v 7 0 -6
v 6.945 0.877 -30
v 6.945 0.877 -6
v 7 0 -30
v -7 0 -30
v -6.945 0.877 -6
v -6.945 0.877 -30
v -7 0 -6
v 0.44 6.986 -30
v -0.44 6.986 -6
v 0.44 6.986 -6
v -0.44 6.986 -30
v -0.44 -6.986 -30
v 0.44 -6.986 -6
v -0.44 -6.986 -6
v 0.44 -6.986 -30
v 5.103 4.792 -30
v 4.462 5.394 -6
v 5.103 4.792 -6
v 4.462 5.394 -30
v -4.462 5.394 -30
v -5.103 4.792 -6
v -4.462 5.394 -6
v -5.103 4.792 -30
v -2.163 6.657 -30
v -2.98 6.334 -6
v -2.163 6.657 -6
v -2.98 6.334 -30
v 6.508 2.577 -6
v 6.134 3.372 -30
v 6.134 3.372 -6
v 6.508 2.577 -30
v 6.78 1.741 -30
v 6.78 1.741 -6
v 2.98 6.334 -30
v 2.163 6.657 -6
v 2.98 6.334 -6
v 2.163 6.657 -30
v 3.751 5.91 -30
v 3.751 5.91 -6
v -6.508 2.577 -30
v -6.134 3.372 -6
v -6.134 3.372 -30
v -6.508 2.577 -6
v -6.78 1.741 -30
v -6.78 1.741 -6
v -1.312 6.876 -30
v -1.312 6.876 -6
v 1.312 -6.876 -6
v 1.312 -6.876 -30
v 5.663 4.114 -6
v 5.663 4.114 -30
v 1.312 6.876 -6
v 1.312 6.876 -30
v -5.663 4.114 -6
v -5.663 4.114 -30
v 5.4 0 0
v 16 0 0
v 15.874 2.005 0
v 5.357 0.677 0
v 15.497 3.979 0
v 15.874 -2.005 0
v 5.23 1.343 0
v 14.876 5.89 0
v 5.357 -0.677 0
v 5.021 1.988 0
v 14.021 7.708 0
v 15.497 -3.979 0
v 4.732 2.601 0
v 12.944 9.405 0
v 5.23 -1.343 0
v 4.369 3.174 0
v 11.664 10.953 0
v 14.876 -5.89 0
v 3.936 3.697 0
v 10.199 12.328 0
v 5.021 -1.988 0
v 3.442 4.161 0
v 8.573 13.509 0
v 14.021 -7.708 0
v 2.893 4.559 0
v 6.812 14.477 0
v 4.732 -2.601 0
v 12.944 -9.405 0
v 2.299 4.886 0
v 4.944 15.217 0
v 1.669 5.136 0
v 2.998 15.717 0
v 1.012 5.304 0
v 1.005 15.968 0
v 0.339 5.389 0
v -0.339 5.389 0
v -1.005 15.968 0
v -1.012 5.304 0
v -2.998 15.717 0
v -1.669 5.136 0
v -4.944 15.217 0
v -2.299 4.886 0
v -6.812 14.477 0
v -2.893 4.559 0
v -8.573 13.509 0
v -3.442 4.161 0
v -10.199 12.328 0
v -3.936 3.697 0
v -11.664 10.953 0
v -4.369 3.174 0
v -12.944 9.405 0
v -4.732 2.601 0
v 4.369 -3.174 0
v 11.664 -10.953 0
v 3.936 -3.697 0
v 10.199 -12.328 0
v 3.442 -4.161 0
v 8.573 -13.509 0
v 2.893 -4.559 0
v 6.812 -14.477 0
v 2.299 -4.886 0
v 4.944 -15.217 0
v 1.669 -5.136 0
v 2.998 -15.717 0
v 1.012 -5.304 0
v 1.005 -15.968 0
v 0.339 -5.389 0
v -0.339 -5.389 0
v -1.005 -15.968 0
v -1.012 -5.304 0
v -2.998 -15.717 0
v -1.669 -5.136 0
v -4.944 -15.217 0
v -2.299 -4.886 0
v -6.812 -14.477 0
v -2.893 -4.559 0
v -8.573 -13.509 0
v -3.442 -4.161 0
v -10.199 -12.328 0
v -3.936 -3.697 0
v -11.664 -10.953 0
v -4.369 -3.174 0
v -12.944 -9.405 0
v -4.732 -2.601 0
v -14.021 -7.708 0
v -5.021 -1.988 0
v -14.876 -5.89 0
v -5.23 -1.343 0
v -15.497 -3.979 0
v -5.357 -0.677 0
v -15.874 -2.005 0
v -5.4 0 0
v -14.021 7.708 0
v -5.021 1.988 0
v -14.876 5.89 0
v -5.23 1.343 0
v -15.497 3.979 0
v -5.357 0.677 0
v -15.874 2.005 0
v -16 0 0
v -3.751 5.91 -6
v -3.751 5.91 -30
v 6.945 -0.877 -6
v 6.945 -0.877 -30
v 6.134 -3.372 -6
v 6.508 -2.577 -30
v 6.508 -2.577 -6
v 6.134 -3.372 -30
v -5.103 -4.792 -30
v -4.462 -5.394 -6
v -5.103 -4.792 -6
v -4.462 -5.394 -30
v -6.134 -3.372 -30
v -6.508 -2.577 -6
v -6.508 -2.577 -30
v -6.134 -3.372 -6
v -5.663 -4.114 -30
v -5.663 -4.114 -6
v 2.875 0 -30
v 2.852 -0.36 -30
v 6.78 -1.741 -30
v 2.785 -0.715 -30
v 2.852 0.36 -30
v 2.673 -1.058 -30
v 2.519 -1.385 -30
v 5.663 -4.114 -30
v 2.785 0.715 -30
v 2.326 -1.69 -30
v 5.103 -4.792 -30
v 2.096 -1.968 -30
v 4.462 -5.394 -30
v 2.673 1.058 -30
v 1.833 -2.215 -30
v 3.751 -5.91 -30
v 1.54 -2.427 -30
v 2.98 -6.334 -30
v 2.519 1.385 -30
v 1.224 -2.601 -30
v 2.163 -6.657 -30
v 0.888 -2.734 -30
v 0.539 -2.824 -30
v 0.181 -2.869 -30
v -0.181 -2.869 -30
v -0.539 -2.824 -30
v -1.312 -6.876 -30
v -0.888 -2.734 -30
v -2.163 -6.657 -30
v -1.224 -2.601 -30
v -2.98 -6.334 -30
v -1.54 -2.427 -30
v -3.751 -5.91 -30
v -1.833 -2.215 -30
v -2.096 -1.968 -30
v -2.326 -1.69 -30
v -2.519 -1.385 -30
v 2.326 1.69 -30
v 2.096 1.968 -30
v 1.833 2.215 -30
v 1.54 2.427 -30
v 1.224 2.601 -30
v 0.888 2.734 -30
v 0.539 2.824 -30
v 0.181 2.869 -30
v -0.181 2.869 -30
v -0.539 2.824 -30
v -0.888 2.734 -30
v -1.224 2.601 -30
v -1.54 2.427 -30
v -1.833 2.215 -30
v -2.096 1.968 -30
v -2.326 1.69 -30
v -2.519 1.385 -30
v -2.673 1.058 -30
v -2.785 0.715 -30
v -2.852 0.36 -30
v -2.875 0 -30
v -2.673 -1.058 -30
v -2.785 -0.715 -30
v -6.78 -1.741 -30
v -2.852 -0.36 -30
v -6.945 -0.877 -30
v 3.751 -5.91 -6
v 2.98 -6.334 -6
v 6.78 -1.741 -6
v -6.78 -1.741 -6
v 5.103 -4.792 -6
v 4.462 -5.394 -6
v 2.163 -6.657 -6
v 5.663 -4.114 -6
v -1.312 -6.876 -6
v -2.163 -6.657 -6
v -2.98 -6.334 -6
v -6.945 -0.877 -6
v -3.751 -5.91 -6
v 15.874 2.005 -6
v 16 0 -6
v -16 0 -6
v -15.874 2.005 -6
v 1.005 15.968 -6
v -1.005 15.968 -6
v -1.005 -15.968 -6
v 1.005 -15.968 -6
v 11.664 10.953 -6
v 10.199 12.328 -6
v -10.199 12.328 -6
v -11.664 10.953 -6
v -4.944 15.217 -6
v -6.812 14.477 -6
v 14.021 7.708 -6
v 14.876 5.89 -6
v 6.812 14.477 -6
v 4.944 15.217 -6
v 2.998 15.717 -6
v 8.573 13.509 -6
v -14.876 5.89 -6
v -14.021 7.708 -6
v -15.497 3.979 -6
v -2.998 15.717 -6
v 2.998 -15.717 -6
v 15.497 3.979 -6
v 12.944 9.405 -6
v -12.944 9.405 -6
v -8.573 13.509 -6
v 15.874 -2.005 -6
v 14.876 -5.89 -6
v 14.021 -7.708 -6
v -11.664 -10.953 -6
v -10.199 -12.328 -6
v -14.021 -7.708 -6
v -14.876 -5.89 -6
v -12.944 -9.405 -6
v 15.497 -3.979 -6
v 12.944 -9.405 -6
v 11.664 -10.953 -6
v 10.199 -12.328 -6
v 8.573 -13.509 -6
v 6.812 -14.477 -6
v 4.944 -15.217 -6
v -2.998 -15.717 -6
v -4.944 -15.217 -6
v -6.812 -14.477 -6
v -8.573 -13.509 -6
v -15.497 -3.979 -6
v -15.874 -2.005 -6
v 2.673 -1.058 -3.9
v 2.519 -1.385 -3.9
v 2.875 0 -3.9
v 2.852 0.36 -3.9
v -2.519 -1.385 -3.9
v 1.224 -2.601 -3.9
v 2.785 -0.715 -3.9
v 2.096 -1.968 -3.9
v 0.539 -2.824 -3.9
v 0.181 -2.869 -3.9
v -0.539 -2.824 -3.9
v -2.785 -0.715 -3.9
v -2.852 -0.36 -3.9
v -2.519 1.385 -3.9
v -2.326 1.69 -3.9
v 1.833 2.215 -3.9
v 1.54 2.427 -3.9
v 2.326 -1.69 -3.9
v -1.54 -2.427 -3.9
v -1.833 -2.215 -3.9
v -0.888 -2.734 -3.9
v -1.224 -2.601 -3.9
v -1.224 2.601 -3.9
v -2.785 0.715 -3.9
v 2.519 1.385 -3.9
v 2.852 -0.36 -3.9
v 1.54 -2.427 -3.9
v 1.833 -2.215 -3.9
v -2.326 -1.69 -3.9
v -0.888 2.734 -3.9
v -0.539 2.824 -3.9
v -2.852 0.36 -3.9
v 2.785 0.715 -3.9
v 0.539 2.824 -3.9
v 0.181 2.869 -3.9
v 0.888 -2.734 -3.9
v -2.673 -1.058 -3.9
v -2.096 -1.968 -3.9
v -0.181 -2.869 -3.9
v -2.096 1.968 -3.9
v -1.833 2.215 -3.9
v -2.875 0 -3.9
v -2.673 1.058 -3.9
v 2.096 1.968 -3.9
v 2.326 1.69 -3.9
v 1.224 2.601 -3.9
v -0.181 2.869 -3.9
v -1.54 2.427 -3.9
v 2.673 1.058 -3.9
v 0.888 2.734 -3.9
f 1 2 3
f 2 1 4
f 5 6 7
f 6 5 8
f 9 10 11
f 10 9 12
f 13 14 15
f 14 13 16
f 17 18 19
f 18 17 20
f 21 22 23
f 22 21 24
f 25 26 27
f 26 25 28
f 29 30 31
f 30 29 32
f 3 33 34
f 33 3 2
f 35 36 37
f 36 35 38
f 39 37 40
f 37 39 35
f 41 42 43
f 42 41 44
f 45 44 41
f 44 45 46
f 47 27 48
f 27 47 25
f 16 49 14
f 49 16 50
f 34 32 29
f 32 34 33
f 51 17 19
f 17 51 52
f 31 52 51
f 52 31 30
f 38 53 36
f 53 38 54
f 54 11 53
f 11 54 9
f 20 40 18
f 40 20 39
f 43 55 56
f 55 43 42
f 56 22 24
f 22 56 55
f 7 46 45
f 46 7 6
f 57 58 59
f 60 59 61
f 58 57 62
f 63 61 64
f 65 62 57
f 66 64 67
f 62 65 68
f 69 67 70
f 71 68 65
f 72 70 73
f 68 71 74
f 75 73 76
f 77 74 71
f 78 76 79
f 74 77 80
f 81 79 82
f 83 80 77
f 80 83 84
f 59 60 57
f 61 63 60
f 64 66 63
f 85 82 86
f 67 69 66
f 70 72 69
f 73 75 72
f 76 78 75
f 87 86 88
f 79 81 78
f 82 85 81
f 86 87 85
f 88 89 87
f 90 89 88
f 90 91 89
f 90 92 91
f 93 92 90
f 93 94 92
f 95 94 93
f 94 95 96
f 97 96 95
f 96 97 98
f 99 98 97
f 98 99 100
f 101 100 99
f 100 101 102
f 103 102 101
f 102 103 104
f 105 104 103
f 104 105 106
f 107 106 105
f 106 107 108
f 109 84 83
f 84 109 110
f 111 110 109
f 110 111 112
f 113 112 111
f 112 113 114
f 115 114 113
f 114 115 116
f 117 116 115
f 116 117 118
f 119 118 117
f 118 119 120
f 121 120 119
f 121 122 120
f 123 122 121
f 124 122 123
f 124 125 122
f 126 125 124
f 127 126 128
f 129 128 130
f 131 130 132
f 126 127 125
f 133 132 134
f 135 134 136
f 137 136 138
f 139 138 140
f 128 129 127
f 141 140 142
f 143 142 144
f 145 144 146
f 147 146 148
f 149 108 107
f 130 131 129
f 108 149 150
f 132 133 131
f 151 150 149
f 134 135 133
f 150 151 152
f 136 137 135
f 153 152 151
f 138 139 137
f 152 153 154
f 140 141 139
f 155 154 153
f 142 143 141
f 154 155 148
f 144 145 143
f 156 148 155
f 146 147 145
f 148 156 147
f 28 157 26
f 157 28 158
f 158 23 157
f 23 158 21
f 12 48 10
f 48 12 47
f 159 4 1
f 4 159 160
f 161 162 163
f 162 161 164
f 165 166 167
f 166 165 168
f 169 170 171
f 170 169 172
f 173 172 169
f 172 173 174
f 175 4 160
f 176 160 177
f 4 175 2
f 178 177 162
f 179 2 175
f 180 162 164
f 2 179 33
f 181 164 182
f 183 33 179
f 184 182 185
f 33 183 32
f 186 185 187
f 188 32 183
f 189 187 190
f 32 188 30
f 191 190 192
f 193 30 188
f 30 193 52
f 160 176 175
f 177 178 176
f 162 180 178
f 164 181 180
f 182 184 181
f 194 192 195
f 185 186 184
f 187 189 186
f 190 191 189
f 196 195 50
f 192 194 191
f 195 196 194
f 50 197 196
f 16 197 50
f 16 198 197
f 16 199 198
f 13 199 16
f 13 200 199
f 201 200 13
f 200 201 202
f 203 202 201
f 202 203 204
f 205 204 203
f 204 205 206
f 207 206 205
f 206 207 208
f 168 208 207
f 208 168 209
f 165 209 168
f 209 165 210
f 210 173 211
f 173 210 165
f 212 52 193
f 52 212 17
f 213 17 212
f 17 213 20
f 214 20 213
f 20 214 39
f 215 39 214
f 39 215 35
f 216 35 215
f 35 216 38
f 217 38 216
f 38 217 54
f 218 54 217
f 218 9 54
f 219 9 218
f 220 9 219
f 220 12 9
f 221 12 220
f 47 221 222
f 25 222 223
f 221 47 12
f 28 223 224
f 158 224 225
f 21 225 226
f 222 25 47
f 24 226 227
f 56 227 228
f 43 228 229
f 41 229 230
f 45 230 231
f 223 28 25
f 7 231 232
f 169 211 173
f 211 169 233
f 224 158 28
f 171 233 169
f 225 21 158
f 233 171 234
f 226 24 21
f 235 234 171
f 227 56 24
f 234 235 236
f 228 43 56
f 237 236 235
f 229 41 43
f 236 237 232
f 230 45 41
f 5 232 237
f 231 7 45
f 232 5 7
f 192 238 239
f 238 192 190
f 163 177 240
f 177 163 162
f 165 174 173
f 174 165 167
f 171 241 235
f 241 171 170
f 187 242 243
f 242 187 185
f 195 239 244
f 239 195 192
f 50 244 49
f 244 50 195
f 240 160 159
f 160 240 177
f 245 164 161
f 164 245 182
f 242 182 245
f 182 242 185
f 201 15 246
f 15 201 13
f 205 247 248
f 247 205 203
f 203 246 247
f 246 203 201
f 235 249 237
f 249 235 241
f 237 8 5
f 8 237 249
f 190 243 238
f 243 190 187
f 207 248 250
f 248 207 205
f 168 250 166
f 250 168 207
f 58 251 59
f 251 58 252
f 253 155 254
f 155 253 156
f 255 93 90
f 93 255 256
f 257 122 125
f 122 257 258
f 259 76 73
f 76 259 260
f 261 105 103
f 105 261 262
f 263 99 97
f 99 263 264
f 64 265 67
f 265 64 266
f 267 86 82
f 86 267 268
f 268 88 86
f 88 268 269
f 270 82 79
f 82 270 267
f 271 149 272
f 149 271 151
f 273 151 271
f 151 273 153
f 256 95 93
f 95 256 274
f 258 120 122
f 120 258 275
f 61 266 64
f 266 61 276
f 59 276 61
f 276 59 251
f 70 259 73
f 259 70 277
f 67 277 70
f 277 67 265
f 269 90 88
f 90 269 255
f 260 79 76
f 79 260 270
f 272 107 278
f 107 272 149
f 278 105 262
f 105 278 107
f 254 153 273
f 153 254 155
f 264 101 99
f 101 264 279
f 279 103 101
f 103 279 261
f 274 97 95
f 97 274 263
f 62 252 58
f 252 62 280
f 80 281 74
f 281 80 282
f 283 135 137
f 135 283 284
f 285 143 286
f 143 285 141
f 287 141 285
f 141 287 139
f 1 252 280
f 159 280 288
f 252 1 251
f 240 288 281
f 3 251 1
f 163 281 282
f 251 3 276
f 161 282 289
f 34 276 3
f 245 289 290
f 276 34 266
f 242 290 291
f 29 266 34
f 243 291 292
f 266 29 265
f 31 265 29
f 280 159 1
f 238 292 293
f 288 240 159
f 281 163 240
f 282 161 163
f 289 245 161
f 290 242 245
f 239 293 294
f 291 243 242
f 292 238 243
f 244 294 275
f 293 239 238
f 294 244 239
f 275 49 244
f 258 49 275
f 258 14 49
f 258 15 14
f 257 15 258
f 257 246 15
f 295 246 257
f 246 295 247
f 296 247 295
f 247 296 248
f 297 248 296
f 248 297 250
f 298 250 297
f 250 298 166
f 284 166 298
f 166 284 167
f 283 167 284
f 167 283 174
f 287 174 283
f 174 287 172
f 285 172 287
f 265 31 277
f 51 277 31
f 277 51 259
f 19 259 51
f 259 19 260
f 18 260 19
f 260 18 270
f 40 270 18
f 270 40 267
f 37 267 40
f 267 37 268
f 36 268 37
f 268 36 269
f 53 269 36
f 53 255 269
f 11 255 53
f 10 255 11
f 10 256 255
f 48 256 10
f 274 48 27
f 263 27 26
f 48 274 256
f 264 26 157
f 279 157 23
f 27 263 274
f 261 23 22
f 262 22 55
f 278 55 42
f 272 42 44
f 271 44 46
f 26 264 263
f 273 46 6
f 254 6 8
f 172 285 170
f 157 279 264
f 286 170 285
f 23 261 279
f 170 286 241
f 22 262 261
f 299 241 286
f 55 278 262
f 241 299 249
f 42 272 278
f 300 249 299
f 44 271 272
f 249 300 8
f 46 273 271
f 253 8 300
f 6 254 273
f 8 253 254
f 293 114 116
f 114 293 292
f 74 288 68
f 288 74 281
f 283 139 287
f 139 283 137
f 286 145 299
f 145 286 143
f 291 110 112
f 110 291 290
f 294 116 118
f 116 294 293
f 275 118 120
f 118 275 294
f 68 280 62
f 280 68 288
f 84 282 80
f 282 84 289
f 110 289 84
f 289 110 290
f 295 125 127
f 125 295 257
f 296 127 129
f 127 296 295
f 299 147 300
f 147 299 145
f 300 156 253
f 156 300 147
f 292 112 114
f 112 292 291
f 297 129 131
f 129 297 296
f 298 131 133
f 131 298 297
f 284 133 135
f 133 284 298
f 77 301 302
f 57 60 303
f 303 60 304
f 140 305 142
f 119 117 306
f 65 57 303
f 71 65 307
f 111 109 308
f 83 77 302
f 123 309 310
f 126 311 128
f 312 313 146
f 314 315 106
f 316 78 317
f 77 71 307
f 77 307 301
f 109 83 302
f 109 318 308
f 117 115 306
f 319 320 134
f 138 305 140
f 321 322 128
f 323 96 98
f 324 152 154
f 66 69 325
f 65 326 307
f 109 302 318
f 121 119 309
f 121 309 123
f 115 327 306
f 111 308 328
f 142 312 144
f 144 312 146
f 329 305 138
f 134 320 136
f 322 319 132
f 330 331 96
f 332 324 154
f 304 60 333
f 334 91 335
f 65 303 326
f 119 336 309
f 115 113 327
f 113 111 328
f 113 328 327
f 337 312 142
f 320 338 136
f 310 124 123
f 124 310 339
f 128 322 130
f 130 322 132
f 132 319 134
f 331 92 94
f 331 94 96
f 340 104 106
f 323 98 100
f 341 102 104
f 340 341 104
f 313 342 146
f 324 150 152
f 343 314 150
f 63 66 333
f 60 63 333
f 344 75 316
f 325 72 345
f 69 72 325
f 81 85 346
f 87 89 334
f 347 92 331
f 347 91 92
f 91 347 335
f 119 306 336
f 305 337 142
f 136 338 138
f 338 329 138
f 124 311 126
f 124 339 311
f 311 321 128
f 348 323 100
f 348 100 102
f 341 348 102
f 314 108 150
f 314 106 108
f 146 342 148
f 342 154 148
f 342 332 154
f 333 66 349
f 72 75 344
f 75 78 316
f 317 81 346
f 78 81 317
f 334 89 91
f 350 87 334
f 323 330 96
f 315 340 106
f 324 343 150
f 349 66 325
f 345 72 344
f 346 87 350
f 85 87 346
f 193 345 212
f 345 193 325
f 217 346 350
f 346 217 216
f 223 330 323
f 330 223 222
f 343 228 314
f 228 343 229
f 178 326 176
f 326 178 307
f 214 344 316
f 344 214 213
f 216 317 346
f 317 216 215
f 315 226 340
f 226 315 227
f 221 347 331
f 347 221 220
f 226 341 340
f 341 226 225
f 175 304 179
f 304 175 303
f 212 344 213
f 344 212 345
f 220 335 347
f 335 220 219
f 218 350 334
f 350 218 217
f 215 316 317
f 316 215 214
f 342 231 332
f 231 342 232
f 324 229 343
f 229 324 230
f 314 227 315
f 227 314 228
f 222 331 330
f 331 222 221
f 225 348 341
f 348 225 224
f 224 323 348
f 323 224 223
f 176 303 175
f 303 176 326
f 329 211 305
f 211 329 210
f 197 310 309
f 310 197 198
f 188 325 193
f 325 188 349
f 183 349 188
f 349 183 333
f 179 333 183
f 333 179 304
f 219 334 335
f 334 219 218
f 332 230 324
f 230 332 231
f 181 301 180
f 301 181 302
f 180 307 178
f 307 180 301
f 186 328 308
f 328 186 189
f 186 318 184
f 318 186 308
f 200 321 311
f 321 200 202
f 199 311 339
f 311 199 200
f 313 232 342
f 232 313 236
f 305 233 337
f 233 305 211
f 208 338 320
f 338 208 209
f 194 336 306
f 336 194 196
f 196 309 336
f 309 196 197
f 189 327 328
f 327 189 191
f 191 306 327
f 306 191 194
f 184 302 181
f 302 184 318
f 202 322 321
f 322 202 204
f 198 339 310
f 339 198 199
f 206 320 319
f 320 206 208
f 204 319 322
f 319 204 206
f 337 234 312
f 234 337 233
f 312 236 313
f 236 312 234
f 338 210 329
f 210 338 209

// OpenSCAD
$fn = 50;


difference() {
	union() {
		translate(v = [0, 0, -30.0000000000]) {
			cylinder(h = 30, r = 7.0000000000);
		}
		translate(v = [0, 0, -6.0000000000]) {
			cylinder(h = 6, r = 16.0000000000);
		}
	}
	union() {
		translate(v = [0, 0, 0]) {
			rotate(a = [0, 0, 0]) {
				difference() {
					union() {
						#translate(v = [0, 0, -30.0000000000]) {
							cylinder(h = 30, r = 2.6000000000);
						}
						#translate(v = [0, 0, -3.9000000000]) {
							cylinder(h = 3.9000000000, r = 7.0000000000, r1 = 2.8750000000, r2 = 5.4000000000);
						}
						#translate(v = [0, 0, -30.0000000000]) {
							cylinder(h = 30, r = 2.8750000000);
						}
						#translate(v = [0, 0, -30.0000000000]) {
							cylinder(h = 30, r = 2.6000000000);
						}
					}
					union();
				}
			}
		}
	}
}
